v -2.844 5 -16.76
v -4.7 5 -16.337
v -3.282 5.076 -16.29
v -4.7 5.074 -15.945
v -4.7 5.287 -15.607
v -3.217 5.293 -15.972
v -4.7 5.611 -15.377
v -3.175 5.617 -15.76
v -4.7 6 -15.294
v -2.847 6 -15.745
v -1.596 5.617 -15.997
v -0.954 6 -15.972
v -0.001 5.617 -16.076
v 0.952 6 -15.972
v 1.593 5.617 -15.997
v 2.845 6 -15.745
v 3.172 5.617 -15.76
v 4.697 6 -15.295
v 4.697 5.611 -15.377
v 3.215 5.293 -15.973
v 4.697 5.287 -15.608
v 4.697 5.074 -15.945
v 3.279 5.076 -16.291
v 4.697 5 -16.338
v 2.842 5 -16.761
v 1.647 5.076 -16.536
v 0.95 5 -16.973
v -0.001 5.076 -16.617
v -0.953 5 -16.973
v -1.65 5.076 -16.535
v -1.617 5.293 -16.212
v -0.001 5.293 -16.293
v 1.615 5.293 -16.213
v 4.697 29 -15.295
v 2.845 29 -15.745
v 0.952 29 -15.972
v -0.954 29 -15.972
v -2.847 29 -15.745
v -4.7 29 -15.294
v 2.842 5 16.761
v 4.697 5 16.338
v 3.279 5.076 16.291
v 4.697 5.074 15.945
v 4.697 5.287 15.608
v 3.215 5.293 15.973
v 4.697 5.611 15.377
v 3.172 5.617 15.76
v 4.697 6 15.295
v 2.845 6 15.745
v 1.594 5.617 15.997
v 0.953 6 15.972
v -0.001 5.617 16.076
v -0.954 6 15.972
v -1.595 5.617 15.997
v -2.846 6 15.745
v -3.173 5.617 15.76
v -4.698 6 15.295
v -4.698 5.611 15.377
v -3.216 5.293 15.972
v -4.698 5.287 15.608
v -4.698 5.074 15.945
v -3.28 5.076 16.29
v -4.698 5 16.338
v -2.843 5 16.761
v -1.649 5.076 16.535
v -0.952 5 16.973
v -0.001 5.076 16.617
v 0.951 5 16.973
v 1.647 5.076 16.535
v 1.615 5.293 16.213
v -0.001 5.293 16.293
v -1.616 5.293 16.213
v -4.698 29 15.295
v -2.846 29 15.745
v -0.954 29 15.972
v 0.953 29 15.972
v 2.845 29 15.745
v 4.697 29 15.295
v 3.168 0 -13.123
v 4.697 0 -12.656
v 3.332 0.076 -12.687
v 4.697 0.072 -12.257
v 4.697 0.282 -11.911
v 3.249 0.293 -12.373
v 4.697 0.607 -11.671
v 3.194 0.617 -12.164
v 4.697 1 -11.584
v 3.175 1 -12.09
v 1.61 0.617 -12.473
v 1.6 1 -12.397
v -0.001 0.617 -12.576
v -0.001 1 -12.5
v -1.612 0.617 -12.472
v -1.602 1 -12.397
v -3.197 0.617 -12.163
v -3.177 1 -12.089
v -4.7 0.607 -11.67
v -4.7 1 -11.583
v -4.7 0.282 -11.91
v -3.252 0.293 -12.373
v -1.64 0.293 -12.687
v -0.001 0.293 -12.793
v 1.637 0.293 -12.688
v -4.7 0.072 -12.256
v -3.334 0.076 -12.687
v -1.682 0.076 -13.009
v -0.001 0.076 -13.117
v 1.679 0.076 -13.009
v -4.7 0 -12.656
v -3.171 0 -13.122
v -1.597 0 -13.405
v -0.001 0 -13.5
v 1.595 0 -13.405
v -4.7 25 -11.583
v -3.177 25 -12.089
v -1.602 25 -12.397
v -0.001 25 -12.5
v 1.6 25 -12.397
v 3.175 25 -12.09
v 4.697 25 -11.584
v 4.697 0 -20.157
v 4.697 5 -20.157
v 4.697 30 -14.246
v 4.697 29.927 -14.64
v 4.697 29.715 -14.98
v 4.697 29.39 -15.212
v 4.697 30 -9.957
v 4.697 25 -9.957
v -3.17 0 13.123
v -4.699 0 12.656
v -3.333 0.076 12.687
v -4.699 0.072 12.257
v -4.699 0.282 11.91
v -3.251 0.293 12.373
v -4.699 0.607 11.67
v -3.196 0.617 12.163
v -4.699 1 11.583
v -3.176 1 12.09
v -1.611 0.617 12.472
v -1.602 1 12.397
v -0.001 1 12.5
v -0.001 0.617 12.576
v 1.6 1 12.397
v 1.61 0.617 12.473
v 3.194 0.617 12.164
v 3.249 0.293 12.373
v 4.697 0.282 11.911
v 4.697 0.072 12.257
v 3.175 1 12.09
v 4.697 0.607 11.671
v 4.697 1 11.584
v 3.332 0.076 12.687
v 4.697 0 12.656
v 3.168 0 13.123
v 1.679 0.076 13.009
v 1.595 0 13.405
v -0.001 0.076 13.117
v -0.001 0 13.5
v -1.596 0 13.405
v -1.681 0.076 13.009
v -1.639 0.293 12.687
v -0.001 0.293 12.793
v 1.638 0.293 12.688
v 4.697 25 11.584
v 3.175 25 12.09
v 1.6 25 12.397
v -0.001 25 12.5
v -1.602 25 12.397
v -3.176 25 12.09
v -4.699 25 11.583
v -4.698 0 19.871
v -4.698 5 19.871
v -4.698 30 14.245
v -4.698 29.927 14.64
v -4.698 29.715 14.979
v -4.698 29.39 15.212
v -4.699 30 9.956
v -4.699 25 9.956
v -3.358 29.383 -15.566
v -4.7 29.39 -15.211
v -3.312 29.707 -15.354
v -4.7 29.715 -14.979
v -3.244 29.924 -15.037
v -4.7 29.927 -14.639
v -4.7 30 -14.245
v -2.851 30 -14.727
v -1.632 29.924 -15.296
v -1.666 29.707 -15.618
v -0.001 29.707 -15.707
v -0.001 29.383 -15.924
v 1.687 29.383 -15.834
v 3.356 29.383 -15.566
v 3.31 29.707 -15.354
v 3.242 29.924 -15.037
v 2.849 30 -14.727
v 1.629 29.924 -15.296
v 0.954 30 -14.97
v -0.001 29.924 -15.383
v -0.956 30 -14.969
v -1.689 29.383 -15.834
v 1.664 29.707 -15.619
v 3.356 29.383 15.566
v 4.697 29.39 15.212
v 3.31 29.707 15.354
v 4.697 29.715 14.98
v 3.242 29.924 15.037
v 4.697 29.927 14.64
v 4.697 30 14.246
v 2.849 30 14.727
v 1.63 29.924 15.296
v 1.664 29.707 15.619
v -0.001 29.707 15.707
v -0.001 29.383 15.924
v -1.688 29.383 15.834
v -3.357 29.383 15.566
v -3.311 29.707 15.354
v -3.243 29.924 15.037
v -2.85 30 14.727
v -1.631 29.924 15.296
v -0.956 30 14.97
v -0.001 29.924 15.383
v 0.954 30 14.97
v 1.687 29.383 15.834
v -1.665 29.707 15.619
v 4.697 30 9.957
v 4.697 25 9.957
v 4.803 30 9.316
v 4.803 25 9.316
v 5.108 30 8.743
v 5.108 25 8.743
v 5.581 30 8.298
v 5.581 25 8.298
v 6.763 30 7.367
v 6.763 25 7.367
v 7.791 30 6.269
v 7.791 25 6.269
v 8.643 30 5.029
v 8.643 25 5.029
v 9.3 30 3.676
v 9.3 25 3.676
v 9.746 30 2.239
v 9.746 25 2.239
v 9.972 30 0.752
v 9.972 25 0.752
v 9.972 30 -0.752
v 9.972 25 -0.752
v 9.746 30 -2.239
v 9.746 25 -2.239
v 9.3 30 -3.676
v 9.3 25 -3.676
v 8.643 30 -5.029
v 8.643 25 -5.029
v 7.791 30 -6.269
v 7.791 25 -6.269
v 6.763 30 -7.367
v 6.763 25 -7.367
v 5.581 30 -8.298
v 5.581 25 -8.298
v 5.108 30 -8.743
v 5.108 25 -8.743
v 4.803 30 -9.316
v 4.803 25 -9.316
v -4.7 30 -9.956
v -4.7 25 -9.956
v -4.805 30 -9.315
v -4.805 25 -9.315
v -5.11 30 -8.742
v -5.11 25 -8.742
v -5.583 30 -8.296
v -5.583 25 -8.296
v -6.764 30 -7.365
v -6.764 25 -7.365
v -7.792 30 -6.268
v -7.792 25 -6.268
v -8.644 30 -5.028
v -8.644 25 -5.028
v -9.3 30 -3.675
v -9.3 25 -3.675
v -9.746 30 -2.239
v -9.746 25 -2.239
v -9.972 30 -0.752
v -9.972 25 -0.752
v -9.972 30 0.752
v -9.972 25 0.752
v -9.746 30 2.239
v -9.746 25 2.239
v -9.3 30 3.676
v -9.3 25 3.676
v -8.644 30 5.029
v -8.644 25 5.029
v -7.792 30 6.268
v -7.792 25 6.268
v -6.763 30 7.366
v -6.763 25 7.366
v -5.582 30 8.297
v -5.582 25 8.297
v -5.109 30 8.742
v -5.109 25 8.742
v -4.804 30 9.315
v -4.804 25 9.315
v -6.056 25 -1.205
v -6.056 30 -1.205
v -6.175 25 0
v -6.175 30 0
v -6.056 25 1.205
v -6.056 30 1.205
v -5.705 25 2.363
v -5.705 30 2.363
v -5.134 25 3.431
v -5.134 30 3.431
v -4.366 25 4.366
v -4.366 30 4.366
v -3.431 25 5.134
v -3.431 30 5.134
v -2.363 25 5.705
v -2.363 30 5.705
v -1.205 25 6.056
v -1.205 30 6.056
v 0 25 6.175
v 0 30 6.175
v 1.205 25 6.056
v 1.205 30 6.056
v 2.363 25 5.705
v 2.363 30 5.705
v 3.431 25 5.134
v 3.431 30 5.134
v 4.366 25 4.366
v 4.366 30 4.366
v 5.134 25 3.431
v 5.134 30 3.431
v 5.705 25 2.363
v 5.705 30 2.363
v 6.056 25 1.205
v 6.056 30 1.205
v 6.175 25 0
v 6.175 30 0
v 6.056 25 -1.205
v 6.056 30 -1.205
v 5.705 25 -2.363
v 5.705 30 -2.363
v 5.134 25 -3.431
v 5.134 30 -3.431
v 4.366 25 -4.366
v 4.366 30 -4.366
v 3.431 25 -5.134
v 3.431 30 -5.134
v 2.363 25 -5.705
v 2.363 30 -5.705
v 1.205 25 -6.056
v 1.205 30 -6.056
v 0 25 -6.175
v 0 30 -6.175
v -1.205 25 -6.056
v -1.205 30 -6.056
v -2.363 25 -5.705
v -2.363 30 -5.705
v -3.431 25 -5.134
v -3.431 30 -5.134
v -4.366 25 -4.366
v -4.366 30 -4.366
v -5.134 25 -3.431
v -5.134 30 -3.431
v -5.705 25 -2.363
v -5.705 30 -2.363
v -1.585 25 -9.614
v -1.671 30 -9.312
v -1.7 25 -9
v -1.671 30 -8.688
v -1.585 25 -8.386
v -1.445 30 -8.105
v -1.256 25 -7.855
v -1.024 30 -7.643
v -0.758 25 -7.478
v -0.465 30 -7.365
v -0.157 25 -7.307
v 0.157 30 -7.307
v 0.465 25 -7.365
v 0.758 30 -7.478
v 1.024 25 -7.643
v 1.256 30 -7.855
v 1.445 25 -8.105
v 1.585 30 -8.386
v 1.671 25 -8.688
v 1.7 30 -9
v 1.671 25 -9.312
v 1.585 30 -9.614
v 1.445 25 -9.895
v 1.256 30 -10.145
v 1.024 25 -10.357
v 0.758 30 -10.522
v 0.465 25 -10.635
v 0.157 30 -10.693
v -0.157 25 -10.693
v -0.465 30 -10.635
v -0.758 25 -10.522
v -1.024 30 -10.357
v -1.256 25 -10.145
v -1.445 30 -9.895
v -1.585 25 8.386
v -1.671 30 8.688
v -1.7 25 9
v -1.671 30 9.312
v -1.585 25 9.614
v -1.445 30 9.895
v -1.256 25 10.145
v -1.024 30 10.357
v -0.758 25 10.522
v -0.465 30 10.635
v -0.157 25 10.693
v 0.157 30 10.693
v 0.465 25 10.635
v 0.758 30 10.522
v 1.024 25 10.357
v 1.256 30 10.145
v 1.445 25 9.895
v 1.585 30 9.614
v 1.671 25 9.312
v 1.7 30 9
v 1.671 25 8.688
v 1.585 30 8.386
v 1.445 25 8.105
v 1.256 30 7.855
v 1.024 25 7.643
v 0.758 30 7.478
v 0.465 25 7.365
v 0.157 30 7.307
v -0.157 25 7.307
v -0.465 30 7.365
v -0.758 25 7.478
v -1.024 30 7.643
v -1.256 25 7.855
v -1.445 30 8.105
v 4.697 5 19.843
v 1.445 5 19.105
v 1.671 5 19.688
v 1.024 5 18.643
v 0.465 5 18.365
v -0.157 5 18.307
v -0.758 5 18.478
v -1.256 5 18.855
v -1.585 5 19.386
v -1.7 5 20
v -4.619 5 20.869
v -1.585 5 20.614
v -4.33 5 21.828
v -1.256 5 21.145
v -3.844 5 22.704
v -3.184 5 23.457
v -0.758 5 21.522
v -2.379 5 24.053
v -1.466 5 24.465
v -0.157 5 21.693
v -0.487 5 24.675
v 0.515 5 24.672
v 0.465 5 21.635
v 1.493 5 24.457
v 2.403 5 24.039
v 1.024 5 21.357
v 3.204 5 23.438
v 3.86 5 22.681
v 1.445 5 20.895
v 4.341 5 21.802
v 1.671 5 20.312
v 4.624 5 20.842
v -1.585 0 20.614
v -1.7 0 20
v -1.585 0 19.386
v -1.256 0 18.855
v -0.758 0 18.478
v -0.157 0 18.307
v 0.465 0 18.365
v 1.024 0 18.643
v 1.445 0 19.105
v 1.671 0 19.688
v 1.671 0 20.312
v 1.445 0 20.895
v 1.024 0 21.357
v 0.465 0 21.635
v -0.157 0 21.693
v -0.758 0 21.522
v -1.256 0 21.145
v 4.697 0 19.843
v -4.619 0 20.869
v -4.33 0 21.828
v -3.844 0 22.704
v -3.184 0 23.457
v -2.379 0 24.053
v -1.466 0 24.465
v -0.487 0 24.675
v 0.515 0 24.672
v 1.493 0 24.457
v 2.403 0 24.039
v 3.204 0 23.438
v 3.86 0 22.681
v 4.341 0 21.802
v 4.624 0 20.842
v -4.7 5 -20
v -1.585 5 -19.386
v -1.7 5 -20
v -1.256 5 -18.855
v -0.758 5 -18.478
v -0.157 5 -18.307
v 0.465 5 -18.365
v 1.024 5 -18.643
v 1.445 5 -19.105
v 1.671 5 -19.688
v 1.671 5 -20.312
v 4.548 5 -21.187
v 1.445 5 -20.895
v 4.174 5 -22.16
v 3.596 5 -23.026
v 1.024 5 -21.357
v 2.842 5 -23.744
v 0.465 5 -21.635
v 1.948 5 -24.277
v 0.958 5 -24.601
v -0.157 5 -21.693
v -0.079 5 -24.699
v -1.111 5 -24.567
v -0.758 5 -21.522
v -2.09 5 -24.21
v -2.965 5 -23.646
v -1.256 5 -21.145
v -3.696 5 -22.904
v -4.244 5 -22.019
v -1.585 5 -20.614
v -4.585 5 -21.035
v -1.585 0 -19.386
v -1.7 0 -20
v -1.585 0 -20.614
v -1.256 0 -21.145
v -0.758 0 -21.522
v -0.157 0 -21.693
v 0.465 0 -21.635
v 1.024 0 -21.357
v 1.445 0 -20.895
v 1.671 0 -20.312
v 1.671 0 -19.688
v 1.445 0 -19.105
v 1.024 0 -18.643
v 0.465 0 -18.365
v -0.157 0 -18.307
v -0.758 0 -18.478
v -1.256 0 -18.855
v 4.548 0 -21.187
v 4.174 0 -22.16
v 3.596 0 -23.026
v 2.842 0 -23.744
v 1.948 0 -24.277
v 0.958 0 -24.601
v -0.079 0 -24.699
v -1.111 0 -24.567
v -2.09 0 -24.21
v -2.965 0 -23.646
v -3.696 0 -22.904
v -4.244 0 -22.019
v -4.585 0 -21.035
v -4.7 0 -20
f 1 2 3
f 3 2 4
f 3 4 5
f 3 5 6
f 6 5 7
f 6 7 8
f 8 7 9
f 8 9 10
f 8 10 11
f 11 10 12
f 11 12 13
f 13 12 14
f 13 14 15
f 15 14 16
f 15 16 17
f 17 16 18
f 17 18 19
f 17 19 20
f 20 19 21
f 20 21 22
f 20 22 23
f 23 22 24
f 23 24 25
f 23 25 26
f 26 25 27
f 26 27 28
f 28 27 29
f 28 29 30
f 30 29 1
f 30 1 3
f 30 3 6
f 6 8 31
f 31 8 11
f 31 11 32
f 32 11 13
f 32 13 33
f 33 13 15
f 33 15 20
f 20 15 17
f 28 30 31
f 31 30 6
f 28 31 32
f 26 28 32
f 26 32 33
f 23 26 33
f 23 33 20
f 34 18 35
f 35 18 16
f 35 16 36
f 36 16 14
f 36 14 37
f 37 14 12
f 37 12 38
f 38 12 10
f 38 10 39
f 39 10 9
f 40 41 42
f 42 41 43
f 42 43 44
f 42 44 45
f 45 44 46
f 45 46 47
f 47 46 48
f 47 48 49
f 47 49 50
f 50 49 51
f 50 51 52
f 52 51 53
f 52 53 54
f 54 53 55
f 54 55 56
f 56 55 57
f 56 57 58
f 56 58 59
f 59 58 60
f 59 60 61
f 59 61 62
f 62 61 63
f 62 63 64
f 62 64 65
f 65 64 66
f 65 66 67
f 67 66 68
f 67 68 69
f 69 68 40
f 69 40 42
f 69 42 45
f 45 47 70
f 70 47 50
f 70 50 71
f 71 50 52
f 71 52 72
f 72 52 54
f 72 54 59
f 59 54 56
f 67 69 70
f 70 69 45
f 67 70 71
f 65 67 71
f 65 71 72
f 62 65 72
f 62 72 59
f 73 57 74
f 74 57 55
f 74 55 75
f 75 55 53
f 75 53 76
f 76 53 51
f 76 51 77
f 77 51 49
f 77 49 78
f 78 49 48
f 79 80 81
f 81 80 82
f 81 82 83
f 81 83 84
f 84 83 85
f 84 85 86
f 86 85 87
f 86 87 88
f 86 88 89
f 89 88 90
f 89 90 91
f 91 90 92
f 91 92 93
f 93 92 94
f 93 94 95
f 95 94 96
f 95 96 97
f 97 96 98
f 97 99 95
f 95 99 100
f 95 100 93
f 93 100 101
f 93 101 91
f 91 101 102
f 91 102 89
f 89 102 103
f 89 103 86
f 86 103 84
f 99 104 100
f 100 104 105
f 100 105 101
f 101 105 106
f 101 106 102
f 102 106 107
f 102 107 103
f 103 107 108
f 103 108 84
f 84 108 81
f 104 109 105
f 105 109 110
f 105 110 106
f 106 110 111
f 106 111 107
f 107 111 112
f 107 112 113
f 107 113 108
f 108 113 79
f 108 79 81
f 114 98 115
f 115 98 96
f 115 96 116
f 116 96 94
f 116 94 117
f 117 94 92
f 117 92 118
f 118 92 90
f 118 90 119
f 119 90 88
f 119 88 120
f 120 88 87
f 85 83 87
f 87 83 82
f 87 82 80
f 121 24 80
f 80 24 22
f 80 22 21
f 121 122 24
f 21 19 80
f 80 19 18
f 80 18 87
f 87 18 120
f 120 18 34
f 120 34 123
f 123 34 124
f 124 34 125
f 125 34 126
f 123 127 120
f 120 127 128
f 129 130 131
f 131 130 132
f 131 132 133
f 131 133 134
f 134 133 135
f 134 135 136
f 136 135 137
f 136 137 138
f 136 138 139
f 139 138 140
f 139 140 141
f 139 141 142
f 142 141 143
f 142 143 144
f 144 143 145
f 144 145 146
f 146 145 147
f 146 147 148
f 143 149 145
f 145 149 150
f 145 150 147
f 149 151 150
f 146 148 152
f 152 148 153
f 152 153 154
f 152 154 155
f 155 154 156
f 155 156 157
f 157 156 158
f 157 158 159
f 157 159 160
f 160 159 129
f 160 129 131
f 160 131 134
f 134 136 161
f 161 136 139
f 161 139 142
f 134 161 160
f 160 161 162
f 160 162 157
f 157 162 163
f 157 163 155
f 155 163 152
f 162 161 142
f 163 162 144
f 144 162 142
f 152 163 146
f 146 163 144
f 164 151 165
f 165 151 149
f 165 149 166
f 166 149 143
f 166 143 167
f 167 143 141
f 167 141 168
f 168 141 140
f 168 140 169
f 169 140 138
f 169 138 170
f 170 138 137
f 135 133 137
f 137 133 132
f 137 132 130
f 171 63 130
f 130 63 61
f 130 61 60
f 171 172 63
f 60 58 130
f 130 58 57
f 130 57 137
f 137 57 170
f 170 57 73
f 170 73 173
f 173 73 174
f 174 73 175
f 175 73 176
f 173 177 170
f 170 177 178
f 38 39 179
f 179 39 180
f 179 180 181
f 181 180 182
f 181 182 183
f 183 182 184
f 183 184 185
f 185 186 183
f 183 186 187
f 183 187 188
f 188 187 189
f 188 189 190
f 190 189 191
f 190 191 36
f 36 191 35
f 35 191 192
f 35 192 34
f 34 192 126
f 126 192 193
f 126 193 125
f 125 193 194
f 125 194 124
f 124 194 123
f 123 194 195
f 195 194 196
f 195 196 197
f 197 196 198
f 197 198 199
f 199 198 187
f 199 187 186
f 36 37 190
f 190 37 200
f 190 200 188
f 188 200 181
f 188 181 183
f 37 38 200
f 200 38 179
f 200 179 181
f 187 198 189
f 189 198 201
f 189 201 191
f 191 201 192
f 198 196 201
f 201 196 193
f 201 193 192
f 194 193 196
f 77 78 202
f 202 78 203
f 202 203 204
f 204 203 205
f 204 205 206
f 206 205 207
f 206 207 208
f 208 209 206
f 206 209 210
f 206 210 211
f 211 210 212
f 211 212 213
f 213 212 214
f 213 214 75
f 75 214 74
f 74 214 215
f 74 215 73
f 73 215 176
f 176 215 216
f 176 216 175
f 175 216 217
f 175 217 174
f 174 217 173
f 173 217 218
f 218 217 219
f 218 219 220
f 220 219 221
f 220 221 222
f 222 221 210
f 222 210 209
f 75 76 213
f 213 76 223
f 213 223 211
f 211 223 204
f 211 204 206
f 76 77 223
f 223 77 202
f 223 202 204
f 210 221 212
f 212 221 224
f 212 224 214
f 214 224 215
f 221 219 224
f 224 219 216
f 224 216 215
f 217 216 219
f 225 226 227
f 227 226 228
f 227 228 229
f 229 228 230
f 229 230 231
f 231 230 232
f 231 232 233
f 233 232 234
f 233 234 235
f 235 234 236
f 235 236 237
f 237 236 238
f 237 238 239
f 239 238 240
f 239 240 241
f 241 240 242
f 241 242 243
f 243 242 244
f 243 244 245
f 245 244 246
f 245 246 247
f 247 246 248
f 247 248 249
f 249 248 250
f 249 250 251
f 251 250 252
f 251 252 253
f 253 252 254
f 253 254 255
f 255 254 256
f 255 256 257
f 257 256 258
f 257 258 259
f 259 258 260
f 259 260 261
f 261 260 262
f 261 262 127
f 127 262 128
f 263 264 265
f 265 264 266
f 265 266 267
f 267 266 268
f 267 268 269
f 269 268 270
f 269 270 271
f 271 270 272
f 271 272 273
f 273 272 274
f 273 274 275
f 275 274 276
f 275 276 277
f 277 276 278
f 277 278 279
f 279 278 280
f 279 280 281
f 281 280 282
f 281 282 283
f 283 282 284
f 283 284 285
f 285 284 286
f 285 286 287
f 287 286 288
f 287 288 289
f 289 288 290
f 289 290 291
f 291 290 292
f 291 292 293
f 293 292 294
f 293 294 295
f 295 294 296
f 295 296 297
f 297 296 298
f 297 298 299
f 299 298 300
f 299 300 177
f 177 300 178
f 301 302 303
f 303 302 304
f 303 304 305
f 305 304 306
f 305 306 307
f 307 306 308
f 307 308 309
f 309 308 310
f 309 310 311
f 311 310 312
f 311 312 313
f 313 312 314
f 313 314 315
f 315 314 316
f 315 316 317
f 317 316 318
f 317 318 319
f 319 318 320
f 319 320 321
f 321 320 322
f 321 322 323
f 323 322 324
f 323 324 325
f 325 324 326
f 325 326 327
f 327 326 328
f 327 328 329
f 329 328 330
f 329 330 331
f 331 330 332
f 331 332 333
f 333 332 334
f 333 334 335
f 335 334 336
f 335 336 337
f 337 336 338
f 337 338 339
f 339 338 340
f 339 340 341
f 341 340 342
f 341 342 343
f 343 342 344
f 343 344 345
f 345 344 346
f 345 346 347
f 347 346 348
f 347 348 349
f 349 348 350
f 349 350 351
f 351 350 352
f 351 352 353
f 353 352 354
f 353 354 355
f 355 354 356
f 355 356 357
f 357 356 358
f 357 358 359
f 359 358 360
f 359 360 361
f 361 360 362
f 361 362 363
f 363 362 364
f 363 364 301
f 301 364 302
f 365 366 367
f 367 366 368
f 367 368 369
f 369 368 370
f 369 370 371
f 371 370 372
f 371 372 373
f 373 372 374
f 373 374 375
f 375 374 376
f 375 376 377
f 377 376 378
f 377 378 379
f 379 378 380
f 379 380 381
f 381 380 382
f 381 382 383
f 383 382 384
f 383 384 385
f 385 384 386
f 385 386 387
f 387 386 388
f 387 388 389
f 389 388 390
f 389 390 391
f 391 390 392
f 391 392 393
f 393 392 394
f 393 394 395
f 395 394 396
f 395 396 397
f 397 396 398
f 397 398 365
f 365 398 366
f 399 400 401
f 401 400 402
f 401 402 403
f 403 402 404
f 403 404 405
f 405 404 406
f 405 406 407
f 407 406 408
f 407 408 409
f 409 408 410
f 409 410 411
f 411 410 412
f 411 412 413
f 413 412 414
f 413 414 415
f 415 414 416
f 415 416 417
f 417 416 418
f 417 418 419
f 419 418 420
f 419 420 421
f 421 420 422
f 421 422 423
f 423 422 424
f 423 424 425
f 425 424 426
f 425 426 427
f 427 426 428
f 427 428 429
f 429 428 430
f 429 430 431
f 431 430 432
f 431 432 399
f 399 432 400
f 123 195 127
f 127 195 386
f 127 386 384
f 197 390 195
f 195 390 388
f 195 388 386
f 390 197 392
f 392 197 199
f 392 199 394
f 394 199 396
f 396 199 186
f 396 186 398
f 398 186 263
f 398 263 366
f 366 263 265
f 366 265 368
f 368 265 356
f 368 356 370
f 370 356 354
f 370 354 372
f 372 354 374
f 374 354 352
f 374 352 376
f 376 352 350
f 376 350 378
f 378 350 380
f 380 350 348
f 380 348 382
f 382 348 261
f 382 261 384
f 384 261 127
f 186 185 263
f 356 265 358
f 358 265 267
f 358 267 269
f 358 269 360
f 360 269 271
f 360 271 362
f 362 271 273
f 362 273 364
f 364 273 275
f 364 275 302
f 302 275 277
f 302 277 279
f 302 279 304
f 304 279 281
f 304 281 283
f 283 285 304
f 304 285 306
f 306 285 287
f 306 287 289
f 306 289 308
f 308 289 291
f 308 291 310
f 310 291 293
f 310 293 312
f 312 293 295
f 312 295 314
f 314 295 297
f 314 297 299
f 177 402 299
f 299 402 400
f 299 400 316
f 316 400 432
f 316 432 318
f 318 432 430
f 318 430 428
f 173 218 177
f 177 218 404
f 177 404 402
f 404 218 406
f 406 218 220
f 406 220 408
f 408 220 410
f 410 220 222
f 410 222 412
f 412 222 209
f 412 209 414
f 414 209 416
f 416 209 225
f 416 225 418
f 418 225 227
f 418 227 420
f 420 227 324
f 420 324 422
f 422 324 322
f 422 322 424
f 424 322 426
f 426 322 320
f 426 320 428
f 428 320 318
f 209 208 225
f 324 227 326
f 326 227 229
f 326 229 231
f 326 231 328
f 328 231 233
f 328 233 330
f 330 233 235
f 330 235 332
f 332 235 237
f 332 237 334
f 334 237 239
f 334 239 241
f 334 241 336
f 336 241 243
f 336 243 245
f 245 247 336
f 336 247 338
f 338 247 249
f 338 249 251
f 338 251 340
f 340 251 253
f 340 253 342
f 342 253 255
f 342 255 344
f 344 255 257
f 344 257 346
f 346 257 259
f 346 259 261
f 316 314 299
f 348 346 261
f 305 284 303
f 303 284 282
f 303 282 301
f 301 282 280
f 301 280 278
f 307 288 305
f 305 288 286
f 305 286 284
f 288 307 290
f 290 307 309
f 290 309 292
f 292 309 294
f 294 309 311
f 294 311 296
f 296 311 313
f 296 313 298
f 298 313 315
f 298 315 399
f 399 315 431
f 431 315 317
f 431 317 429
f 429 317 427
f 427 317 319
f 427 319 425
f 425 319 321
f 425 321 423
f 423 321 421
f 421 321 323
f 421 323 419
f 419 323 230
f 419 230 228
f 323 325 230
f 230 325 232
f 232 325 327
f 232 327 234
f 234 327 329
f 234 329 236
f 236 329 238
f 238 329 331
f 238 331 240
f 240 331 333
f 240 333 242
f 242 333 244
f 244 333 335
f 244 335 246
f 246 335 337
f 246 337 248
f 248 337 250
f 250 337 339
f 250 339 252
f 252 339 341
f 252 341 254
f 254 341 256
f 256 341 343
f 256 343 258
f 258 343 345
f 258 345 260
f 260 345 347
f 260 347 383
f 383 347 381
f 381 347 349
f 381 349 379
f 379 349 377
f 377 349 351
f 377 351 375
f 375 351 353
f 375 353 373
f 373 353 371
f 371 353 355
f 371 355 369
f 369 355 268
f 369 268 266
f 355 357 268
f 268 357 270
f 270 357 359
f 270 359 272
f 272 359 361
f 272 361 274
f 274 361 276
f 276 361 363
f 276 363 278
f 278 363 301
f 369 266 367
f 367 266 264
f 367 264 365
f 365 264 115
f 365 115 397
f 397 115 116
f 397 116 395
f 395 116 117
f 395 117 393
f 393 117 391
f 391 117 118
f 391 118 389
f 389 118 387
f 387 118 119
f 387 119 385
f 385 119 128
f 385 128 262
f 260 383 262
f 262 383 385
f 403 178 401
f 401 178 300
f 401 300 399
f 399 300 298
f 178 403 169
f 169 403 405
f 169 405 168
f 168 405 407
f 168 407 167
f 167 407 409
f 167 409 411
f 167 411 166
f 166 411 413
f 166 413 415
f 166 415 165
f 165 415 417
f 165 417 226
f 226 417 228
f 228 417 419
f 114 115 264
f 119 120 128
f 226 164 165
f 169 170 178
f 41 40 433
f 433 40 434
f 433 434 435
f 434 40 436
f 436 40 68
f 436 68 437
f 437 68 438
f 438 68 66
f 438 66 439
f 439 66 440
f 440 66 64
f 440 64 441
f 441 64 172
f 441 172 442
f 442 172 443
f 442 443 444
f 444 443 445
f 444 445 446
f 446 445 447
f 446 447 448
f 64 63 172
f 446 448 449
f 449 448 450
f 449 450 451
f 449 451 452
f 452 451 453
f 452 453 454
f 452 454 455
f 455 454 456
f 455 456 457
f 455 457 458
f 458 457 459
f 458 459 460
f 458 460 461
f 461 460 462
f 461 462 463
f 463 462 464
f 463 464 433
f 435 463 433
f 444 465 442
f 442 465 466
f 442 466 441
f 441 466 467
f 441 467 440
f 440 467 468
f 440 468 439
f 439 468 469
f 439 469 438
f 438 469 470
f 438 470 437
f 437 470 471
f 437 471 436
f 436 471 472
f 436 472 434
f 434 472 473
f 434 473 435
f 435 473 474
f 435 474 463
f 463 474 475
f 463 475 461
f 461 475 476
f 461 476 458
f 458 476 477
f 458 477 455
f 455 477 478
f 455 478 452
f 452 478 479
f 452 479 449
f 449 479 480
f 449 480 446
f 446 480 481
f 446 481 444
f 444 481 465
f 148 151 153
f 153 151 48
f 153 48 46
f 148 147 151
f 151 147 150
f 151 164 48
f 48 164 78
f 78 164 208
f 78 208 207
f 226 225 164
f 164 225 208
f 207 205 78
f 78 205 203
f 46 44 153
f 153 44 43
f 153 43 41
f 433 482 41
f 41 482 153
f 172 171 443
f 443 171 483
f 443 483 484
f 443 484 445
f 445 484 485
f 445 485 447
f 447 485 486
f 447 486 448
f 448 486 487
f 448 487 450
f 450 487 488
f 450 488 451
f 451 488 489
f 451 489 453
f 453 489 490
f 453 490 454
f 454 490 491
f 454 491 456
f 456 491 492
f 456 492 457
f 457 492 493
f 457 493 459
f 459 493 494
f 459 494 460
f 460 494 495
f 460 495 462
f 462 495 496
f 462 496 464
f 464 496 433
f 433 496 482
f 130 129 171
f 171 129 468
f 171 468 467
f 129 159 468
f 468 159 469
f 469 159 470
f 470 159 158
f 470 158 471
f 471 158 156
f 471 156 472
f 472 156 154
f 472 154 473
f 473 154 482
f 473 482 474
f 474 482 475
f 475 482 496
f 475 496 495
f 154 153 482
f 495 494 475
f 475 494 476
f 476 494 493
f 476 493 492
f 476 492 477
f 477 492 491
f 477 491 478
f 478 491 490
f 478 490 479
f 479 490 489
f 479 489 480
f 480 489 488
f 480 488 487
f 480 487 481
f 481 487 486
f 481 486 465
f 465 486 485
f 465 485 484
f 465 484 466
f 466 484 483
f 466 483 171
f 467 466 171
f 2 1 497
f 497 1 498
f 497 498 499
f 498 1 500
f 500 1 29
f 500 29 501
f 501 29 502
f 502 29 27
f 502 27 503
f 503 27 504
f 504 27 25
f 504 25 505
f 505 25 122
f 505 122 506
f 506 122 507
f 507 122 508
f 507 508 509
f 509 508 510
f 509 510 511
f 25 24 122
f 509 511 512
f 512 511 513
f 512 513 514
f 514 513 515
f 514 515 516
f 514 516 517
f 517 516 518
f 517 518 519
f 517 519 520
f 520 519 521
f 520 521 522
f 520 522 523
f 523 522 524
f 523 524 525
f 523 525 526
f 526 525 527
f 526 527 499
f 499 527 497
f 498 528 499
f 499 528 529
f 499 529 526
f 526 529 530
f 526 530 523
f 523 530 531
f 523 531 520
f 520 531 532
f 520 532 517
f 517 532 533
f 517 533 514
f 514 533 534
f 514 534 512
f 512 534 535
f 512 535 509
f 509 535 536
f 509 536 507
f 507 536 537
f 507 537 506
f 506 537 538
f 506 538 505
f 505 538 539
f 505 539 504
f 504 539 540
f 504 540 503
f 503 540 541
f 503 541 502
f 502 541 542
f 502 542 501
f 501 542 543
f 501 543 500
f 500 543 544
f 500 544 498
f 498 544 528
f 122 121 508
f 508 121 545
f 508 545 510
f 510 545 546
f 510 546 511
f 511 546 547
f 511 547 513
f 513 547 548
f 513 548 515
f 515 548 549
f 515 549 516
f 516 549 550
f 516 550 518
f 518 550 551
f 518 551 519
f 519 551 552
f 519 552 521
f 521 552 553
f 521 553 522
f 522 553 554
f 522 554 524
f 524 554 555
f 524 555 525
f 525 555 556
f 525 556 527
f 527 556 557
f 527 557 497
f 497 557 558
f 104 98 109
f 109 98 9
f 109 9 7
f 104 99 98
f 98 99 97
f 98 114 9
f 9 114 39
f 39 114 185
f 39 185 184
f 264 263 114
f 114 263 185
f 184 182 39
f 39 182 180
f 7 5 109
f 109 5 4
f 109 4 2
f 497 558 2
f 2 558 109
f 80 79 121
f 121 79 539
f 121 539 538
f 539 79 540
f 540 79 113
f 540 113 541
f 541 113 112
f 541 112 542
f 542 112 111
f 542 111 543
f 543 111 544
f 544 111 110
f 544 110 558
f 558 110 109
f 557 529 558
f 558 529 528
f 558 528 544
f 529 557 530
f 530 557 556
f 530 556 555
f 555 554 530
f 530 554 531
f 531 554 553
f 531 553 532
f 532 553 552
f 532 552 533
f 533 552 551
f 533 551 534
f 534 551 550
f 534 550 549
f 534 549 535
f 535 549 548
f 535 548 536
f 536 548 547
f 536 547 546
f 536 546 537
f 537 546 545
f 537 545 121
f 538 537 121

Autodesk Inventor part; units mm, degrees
ref_plane "YZ Plane" through (0, 0, 0) normal (1, 0, 0) x (0, 1, 0)
ref_plane "XZ Plane" through (0, 0, 0) normal (0, 1, 0) x (-1, 0, 0)
ref_plane "XY Plane" through (0, 0, 0) normal (0, 0, 1) x (1, 0, 0)
sketch "スケッチ1" plane through (0, 0, 0) normal (0, 1, 0) x (-1, 0, 0)
  line L0 (0, 0) -> (0, -20) construction
  line L1 (0, 0) -> (0, 20) construction
  circle A0 centre (0, 20) radius 1.7
  circle A1 centre (0, -20) radius 1.7
  circle A2 centre (0, 20) radius 4.7
  circle A3 centre (0, -20) radius 4.7
  line L2 (4.698231, 19.871077) -> (4.7, -19.999792)
  line L3 (-4.697377, 19.843003) -> (-4.697377, -20.156997)
  circle A4 centre (0, 0) radius 12.5
  point P0 (-4.697377, 11.58381)
  point P1 (4.698599, 11.583314)
  point P2 (4.699627, -11.582897)
  point P3 (-4.697377, -11.58381)
  dimension "d0" = 20
  dimension "d1" = 20
  dimension "d2" = 3.4
  dimension "d3" = 3.4
  dimension "d5" = 3
  dimension "d6" = 3
  dimension "d7" = 25
sketch "スケッチ1 outline for 押し出し1" plane through (0, 0, 0) normal (0, 1, 0) x (-1, 0, 0)
  arc A0 (-4.697377, 11.58381) -> (4.698599, 11.583314) centre (0, 0) cw
  line L0 (-4.697377, 19.843003) -> (-4.697377, 11.58381)
  line L1 (4.698599, 11.583314) -> (4.698231, 19.871077)
  arc A1 (4.698231, 19.871077) -> (-4.697377, 19.843003) centre (0, 20) ccw
  circle A2 centre (0, 20) radius 1.7
  arc A3 (-4.697377, -20.156997) -> (4.7, -19.999792) centre (0, -20) ccw
  line L2 (-4.697377, -11.58381) -> (-4.697377, -20.156997)
  line L3 (4.7, -19.999792) -> (4.699627, -11.582897)
  arc A4 (4.699627, -11.582897) -> (-4.697377, -11.58381) centre (0, 0) cw
  circle A5 centre (0, -20) radius 1.7
extrude "押し出し1" add sketch "スケッチ1 outline for 押し出し1" along normal blind 5
sketch "スケッチ2" plane through (0, 5, 0) normal (0, 1, 0) x (1, 0, 0)
  line L0 (-4.698599, -11.583314) -> (-4.698231, -19.871077)
  arc A0 (-4.698231, -19.871077) -> (4.697377, -19.843003) centre (0, -20) ccw
  line L1 (4.697377, -19.843003) -> (4.697377, -11.58381)
  arc A1 (-4.698599, -11.583314) -> (4.697377, -11.58381) centre (0, 0) ccw
  circle A2 centre (0, -20) radius 1.7
  arc A3 (4.697377, 20.156997) -> (-4.7, 19.999792) centre (0, 20) ccw
  line L2 (-4.7, 19.999792) -> (-4.699627, 11.582897)
  arc A4 (4.697377, 11.58381) -> (-4.699627, 11.582897) centre (0, 0) ccw
  line L3 (4.697377, 11.58381) -> (4.697377, 20.156997)
  circle A5 centre (0, 20) radius 1.7
  circle A6 centre (0, 0) radius 16
  point P0 (4.697377, 15.294922)
  point P1 (-4.699791, 15.294181)
  point P2 (-4.698434, -15.294598)
  point P3 (4.697377, -15.294922)
  dimension "d10" = 32
extrude "押し出し2" add sketch "スケッチ2" along normal blind 20 contours A1 L1 A6 L0 | A6 L3 A4 L2
sketch "スケッチ3" plane through (0, 25, 0) normal (0, 1, 0) x (1, 0, 0)
  line L0 (-4.698599, -11.583314) -> (-4.698434, -15.294598)
  arc A0 (-4.698434, -15.294598) -> (4.697377, -15.294922) centre (0, 0) ccw
  line L1 (4.697377, -15.294922) -> (4.697377, -11.58381)
  arc A1 (-4.698599, -11.583314) -> (4.697377, -11.58381) centre (0, 0) ccw
  line L2 (-4.699791, 15.294181) -> (-4.699627, 11.582897)
  arc A2 (4.697377, 11.58381) -> (-4.699627, 11.582897) centre (0, 0) ccw
  line L3 (4.697377, 11.58381) -> (4.697377, 15.294922)
  arc A3 (4.697377, 15.294922) -> (-4.699791, 15.294181) centre (0, 0) ccw
  line L4 (-4.6, -11.583314) -> (-4.6, 11.582897)
  line L5 (4.697377, -11.58381) -> (4.697377, 11.58381)
  circle A4 centre (0, 0) radius 10
  point P0 (-4.699504, 8.826928)
  point P1 (-4.698721, -8.827345)
  point P2 (4.697377, -8.82806)
  point P3 (4.697377, 8.82806)
  dimension "d16" = 20
sketch "スケッチ3 outline for 押し出し3" plane through (0, 25, 0) normal (0, 1, 0) x (1, 0, 0)
  arc A0 (4.697377, 15.294922) -> (-4.699791, 15.294181) centre (0, 0) ccw
  line L0 (-4.699791, 15.294181) -> (-4.699504, 8.826928)
  arc A1 (-4.699504, 8.826928) -> (-4.698721, -8.827345) centre (0, 0) ccw
  line L1 (-4.698721, -8.827345) -> (-4.698434, -15.294598)
  arc A2 (-4.698434, -15.294598) -> (4.697377, -15.294922) centre (0, 0) ccw
  line L2 (4.697377, -15.294922) -> (4.697377, -8.82806)
  arc A3 (4.697377, -8.82806) -> (4.697377, 8.82806) centre (0, 0) ccw
  line L3 (4.697377, 8.82806) -> (4.697377, 15.294922)
extrude "押し出し3" add sketch "スケッチ3 outline for 押し出し3" along normal blind 5
sketch "スケッチ5" plane through (0, 30, 0) normal (0, 1, 0) x (1, 0, 0)
  circle A0 centre (0, 0) radius 6
  line L0 (0, 0) -> (0, 9)
  line L1 (0, 9) -> (0, -9)
  dimension "d18" = 12
  dimension "d19" = 9
  dimension "d20" = 18
hole "穴1" at (0, 30, -9) at (0, 30, 9) direction (0, -1, 0) diameter 3.4 end through all
sketch "スケッチ6" plane through (0, 30, 0) normal (0, 1, 0) x (1, 0, 0)
  point P0 (0, 0)
  point P1 (0, 0)
hole "穴2" at (0, 30, 0) direction (0, -1, 0) diameter 12.35 end through all
fillet "フィレット3" radius 2 4 edges at (-4.6987, 27.5, 8.8273) (-4.6995, 27.5, -8.8269) (4.6974, 27.5, 8.8281) (4.6974, 27.5, -8.8281)
fillet "フィレット4" radius 1 6 edges at (-0.0006, 30, 16) (-0.0013, 30, -16) (-0.0007, 0, 12.5) (-0.0012, 0, -12.5) (-0.0006, 5, 16) (-0.0013, 5, -16)
properties part number "Th_3D_hn_1" material "ABS プラスチック"
